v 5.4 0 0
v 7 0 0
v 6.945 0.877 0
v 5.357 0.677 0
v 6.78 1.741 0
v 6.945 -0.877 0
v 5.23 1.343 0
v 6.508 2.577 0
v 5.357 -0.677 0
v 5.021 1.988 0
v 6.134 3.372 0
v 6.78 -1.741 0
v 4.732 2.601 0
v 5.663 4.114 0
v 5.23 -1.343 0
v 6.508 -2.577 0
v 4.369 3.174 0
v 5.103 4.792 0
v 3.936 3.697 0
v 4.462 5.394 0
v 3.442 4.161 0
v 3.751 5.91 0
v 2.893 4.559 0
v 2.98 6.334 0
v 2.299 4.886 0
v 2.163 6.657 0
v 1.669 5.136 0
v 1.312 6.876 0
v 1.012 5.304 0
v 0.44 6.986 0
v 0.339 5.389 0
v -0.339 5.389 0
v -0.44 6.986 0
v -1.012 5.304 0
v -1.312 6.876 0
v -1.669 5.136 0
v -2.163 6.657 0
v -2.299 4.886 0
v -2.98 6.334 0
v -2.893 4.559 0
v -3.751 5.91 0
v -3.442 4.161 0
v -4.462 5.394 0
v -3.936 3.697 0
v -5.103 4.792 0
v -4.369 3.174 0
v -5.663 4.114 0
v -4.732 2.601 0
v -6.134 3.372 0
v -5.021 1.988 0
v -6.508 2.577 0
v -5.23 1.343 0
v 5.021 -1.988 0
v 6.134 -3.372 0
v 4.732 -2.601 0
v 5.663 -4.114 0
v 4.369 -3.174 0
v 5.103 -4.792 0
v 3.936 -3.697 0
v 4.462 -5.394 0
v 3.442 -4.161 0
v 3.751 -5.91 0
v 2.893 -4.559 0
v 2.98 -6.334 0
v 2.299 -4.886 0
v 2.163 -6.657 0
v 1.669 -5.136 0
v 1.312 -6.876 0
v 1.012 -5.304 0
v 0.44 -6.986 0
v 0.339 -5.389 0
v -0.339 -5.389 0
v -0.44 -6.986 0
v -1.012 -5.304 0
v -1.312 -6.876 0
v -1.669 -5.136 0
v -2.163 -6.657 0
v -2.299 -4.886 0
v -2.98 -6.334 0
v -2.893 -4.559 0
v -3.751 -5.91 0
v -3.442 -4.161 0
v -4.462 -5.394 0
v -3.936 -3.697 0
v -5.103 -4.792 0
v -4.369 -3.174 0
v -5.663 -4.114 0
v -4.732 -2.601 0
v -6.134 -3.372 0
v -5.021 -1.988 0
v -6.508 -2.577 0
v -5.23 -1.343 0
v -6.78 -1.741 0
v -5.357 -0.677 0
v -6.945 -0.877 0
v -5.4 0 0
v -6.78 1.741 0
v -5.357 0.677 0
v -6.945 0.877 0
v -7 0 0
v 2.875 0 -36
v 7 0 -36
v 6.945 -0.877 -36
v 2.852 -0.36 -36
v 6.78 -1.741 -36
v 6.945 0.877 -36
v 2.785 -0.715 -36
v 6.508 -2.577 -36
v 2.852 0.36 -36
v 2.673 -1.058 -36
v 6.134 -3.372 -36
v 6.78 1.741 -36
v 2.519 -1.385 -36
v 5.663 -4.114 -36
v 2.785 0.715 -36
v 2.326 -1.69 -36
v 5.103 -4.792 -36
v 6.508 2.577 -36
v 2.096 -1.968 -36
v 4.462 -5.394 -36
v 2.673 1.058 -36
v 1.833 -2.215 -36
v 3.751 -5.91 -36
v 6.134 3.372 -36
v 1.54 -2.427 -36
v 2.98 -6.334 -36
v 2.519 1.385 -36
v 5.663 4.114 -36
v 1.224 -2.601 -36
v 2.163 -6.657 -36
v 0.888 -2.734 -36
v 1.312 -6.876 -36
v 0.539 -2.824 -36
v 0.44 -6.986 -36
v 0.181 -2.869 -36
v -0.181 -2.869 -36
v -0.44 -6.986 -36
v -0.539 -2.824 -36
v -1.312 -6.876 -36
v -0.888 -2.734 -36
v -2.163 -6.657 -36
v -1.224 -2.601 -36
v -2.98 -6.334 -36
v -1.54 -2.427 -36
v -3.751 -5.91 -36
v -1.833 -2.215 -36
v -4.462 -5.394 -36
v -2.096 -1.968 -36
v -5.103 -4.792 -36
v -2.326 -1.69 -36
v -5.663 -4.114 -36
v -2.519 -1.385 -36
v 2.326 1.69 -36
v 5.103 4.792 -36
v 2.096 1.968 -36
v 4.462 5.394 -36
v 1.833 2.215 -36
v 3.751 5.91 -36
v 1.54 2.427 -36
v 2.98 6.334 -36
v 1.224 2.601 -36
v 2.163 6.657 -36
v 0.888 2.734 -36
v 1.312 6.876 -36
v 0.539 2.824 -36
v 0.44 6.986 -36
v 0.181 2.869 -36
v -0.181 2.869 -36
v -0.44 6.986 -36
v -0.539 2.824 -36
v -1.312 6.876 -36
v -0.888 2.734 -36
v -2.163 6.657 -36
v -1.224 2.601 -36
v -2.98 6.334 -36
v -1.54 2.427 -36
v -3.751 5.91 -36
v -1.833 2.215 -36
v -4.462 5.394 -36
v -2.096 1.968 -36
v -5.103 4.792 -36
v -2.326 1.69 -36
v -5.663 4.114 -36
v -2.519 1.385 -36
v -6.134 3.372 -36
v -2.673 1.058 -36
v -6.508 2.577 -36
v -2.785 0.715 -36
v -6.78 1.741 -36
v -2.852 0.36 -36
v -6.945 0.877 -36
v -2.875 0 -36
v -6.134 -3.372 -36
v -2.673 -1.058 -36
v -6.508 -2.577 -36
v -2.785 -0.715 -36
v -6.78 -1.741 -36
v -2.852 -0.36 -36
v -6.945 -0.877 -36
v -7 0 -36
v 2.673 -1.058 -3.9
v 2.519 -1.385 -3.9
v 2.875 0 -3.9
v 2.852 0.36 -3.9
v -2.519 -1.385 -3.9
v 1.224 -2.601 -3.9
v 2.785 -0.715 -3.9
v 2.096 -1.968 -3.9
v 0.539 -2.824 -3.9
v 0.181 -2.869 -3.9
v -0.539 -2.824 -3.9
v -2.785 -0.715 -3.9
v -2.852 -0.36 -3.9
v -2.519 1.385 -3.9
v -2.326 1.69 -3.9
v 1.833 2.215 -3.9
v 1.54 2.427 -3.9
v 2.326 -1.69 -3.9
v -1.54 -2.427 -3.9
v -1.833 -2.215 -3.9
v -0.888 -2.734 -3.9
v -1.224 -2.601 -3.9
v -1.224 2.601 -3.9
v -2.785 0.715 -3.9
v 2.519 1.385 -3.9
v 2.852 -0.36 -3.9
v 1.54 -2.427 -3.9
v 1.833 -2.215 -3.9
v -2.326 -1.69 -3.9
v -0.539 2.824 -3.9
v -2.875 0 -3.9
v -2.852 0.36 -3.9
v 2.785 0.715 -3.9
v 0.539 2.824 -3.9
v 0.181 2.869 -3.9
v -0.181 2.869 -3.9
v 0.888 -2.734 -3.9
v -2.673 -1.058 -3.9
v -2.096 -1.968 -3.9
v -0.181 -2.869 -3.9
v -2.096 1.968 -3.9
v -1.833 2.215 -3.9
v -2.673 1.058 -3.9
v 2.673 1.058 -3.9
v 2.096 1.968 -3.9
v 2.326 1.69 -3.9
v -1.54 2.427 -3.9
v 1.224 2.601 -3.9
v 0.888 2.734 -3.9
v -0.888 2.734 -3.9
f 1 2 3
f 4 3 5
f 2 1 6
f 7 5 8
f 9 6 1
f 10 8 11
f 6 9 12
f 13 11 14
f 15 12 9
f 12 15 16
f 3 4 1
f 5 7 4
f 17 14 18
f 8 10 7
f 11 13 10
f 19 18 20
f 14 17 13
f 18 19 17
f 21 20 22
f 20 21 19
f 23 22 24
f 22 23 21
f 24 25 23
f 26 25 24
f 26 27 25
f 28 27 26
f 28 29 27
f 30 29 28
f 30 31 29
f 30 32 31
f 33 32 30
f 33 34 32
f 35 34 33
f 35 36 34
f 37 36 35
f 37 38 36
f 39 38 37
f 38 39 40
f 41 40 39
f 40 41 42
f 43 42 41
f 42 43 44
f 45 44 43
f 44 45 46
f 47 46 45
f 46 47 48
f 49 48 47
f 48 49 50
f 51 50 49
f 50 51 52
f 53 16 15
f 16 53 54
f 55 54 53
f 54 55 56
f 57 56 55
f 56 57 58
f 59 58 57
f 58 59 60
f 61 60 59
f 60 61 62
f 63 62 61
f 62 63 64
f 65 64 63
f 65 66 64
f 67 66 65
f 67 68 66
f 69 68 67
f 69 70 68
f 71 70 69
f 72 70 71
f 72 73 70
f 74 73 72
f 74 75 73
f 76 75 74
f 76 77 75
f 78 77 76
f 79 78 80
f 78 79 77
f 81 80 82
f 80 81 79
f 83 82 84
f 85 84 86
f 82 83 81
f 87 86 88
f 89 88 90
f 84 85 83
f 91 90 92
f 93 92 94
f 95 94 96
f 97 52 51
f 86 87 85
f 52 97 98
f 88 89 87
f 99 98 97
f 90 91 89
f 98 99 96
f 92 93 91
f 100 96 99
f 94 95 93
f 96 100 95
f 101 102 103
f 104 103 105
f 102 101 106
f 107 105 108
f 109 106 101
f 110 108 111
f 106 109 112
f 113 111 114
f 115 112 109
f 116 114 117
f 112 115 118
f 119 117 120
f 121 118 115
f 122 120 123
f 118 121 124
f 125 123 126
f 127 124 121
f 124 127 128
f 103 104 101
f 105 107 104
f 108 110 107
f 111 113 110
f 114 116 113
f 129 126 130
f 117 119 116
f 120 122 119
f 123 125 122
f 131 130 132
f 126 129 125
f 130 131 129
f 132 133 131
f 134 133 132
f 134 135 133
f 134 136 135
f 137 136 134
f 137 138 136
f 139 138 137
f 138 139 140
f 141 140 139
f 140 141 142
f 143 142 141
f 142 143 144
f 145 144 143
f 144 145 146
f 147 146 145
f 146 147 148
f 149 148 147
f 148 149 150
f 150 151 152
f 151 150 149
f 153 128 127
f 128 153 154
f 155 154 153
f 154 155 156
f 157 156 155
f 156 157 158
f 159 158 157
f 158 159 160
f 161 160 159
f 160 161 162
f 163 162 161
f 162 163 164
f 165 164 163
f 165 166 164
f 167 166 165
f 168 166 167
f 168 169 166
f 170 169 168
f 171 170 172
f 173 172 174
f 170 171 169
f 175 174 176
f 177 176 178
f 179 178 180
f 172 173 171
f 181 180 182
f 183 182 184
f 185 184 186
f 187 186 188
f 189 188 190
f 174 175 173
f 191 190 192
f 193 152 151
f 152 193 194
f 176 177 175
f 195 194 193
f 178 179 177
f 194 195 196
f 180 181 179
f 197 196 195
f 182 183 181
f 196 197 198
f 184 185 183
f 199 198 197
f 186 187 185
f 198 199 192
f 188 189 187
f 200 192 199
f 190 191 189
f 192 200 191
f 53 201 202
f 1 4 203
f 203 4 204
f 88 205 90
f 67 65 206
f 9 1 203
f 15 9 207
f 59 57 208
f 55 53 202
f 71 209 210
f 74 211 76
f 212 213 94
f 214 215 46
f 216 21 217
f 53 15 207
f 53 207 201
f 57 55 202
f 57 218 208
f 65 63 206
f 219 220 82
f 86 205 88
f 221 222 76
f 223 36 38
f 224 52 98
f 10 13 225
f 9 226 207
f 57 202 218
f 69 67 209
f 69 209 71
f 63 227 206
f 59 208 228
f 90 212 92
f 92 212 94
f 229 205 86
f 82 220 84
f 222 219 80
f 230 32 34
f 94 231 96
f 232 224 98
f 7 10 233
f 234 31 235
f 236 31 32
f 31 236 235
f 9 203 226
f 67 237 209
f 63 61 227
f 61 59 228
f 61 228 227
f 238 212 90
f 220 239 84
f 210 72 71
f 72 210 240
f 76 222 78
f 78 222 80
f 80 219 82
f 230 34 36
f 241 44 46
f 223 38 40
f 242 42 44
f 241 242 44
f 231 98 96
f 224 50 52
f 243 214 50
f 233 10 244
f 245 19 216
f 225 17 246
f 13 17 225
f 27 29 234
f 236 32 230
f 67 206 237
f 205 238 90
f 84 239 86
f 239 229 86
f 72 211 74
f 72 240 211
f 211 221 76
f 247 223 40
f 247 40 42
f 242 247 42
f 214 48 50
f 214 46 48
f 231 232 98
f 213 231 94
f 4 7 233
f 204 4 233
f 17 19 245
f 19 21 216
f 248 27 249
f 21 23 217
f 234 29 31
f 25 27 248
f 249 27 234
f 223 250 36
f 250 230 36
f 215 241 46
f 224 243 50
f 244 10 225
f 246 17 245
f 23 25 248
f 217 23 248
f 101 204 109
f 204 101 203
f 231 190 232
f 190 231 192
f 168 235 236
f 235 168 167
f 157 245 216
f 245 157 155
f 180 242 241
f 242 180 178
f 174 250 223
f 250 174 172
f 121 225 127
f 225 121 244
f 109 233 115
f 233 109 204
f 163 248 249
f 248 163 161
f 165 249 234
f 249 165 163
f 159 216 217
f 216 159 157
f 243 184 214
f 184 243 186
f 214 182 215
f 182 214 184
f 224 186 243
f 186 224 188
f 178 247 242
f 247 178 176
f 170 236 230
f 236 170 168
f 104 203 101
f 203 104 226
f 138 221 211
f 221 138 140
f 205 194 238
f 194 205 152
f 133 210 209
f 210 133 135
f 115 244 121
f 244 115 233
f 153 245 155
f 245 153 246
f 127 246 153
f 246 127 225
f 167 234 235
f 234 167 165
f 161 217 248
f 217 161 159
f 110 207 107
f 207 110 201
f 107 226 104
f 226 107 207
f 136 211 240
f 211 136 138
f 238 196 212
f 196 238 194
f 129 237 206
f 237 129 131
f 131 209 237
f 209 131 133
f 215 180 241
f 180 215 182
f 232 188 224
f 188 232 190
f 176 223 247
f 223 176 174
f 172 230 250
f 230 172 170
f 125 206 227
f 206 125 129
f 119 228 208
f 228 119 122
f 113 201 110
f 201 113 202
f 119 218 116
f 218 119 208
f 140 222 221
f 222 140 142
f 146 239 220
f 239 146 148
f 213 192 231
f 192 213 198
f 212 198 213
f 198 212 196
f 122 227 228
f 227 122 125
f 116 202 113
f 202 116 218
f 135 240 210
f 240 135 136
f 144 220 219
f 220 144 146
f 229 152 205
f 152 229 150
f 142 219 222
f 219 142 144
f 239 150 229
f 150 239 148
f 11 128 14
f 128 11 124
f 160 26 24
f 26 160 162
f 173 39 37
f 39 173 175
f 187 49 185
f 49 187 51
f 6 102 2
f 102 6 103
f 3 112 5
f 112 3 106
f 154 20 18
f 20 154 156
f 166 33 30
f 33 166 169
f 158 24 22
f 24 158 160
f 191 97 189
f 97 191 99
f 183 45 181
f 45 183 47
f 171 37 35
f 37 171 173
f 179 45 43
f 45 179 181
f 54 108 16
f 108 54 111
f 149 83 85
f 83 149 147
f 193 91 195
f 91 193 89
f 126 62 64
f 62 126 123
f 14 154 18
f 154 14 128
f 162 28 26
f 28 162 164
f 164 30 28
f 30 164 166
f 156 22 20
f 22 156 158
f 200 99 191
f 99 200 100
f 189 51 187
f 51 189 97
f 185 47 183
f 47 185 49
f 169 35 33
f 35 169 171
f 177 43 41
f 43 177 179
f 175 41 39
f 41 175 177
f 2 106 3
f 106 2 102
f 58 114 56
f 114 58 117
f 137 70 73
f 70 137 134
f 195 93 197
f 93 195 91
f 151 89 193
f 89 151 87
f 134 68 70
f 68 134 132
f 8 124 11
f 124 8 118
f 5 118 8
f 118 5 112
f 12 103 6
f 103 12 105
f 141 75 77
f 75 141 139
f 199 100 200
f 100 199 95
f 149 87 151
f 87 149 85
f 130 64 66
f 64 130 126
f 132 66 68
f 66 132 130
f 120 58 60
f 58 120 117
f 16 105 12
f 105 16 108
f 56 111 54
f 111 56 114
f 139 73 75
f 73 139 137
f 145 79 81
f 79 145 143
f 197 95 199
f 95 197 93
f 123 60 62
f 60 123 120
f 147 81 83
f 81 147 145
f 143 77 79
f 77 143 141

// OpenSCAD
$fn = 50;


difference() {
	union() {
		translate(v = [0, 0, -36.0000000000]) {
			cylinder(h = 36, r = 7.0000000000);
		}
		cylinder(h = 0, r = 13.0000000000);
	}
	union() {
		translate(v = [0, 0, 0]) {
			rotate(a = [0, 0, 0]) {
				difference() {
					union() {
						#translate(v = [0, 0, -36.0000000000]) {
							cylinder(h = 36, r = 2.6000000000);
						}
						#translate(v = [0, 0, -3.9000000000]) {
							cylinder(h = 3.9000000000, r1 = 2.8750000000, r2 = 5.4000000000);
						}
						#translate(v = [0, 0, -36.0000000000]) {
							cylinder(h = 36, r = 2.8750000000);
						}
						#translate(v = [0, 0, -36.0000000000]) {
							cylinder(h = 36, r = 2.6000000000);
						}
					}
					union();
				}
			}
		}
	}
}
